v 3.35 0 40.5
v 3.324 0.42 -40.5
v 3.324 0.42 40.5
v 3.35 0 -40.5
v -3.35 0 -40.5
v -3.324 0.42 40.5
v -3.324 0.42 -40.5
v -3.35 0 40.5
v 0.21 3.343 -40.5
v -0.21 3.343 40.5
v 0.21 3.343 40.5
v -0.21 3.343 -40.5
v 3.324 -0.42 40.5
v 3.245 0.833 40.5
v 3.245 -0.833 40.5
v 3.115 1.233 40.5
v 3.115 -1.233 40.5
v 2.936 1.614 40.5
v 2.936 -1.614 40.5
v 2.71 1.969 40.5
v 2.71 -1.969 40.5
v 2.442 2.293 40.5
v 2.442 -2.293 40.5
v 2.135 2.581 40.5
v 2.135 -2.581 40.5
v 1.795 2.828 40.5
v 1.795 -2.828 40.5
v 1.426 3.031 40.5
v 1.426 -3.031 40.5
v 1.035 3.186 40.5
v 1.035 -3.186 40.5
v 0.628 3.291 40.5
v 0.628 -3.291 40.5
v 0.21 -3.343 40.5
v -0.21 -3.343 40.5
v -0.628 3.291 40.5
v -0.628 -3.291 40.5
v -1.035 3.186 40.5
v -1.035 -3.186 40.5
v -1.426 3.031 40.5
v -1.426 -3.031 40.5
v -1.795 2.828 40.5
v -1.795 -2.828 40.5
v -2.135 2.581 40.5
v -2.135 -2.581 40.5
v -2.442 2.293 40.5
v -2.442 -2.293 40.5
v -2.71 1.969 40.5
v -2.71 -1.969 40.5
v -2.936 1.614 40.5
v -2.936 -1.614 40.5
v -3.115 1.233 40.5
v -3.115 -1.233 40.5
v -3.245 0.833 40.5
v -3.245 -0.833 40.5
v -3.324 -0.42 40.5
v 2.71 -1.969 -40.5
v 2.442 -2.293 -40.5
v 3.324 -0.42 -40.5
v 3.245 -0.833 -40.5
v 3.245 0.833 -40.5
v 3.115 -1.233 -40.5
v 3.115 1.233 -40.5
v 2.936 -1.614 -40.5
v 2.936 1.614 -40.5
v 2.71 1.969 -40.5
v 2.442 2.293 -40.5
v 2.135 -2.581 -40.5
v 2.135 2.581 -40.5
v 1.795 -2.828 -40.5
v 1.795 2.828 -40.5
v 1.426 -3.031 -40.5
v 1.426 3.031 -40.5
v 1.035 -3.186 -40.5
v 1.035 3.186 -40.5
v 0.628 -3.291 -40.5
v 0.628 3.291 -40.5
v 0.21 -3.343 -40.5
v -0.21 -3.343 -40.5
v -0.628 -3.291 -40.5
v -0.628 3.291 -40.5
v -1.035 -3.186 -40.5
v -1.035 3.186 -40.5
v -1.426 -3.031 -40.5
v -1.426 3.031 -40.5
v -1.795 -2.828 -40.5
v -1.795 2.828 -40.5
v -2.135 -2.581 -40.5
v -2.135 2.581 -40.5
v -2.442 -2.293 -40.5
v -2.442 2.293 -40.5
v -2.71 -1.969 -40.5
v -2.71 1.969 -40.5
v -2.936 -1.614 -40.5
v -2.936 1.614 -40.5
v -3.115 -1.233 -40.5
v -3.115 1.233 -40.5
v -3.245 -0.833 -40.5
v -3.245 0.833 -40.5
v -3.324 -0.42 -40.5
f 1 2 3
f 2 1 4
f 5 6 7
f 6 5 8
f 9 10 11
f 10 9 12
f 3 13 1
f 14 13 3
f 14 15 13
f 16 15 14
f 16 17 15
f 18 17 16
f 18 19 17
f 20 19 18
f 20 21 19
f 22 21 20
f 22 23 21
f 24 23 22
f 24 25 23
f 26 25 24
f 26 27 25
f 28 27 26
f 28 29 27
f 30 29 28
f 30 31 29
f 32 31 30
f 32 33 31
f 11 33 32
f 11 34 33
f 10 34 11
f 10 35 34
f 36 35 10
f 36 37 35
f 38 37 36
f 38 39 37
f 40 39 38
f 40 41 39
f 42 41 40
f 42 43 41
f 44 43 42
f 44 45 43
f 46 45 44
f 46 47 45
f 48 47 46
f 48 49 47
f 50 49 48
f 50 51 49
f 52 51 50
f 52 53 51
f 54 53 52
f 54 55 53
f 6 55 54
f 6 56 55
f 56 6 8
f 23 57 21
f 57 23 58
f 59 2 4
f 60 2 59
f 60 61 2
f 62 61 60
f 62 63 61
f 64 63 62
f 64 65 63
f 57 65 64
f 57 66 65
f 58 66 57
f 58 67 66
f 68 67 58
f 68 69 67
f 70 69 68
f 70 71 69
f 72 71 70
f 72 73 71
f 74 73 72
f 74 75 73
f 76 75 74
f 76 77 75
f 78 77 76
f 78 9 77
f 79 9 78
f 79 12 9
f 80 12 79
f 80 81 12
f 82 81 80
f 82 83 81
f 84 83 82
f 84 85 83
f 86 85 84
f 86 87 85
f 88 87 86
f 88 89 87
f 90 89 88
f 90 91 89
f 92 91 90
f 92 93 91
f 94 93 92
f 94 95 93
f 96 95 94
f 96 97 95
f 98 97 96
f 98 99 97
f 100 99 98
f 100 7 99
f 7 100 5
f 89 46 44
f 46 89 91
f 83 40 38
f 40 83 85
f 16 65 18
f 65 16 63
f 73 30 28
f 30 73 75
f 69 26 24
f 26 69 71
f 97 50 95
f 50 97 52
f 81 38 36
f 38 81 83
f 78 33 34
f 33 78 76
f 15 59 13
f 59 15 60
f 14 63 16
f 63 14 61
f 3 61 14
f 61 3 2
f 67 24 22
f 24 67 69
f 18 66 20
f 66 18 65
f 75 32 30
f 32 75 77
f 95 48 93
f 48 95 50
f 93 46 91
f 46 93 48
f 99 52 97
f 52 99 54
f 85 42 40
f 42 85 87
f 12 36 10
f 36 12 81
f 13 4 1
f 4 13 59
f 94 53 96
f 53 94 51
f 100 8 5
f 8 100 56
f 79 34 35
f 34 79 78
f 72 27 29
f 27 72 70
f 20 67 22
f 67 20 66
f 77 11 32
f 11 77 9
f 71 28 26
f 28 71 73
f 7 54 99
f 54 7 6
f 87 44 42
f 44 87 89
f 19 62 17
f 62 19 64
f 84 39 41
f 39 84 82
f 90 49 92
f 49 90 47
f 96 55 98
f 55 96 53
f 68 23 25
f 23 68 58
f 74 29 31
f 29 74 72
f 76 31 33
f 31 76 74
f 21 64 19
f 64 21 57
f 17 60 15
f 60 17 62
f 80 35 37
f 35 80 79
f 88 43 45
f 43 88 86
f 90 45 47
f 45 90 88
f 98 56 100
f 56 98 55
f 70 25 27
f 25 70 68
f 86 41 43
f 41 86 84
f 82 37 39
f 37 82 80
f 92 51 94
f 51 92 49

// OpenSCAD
$fn = 50;


difference() {
	union() {
		translate(v = [0, 0, -40.5000000000]) {
			cylinder(h = 81, r = 3.3500000000);
		}
	}
	union() {
		translate(v = [0, 0, -100.0000000000]) {
			cylinder(h = 200, r = 0);
		}
	}
}
